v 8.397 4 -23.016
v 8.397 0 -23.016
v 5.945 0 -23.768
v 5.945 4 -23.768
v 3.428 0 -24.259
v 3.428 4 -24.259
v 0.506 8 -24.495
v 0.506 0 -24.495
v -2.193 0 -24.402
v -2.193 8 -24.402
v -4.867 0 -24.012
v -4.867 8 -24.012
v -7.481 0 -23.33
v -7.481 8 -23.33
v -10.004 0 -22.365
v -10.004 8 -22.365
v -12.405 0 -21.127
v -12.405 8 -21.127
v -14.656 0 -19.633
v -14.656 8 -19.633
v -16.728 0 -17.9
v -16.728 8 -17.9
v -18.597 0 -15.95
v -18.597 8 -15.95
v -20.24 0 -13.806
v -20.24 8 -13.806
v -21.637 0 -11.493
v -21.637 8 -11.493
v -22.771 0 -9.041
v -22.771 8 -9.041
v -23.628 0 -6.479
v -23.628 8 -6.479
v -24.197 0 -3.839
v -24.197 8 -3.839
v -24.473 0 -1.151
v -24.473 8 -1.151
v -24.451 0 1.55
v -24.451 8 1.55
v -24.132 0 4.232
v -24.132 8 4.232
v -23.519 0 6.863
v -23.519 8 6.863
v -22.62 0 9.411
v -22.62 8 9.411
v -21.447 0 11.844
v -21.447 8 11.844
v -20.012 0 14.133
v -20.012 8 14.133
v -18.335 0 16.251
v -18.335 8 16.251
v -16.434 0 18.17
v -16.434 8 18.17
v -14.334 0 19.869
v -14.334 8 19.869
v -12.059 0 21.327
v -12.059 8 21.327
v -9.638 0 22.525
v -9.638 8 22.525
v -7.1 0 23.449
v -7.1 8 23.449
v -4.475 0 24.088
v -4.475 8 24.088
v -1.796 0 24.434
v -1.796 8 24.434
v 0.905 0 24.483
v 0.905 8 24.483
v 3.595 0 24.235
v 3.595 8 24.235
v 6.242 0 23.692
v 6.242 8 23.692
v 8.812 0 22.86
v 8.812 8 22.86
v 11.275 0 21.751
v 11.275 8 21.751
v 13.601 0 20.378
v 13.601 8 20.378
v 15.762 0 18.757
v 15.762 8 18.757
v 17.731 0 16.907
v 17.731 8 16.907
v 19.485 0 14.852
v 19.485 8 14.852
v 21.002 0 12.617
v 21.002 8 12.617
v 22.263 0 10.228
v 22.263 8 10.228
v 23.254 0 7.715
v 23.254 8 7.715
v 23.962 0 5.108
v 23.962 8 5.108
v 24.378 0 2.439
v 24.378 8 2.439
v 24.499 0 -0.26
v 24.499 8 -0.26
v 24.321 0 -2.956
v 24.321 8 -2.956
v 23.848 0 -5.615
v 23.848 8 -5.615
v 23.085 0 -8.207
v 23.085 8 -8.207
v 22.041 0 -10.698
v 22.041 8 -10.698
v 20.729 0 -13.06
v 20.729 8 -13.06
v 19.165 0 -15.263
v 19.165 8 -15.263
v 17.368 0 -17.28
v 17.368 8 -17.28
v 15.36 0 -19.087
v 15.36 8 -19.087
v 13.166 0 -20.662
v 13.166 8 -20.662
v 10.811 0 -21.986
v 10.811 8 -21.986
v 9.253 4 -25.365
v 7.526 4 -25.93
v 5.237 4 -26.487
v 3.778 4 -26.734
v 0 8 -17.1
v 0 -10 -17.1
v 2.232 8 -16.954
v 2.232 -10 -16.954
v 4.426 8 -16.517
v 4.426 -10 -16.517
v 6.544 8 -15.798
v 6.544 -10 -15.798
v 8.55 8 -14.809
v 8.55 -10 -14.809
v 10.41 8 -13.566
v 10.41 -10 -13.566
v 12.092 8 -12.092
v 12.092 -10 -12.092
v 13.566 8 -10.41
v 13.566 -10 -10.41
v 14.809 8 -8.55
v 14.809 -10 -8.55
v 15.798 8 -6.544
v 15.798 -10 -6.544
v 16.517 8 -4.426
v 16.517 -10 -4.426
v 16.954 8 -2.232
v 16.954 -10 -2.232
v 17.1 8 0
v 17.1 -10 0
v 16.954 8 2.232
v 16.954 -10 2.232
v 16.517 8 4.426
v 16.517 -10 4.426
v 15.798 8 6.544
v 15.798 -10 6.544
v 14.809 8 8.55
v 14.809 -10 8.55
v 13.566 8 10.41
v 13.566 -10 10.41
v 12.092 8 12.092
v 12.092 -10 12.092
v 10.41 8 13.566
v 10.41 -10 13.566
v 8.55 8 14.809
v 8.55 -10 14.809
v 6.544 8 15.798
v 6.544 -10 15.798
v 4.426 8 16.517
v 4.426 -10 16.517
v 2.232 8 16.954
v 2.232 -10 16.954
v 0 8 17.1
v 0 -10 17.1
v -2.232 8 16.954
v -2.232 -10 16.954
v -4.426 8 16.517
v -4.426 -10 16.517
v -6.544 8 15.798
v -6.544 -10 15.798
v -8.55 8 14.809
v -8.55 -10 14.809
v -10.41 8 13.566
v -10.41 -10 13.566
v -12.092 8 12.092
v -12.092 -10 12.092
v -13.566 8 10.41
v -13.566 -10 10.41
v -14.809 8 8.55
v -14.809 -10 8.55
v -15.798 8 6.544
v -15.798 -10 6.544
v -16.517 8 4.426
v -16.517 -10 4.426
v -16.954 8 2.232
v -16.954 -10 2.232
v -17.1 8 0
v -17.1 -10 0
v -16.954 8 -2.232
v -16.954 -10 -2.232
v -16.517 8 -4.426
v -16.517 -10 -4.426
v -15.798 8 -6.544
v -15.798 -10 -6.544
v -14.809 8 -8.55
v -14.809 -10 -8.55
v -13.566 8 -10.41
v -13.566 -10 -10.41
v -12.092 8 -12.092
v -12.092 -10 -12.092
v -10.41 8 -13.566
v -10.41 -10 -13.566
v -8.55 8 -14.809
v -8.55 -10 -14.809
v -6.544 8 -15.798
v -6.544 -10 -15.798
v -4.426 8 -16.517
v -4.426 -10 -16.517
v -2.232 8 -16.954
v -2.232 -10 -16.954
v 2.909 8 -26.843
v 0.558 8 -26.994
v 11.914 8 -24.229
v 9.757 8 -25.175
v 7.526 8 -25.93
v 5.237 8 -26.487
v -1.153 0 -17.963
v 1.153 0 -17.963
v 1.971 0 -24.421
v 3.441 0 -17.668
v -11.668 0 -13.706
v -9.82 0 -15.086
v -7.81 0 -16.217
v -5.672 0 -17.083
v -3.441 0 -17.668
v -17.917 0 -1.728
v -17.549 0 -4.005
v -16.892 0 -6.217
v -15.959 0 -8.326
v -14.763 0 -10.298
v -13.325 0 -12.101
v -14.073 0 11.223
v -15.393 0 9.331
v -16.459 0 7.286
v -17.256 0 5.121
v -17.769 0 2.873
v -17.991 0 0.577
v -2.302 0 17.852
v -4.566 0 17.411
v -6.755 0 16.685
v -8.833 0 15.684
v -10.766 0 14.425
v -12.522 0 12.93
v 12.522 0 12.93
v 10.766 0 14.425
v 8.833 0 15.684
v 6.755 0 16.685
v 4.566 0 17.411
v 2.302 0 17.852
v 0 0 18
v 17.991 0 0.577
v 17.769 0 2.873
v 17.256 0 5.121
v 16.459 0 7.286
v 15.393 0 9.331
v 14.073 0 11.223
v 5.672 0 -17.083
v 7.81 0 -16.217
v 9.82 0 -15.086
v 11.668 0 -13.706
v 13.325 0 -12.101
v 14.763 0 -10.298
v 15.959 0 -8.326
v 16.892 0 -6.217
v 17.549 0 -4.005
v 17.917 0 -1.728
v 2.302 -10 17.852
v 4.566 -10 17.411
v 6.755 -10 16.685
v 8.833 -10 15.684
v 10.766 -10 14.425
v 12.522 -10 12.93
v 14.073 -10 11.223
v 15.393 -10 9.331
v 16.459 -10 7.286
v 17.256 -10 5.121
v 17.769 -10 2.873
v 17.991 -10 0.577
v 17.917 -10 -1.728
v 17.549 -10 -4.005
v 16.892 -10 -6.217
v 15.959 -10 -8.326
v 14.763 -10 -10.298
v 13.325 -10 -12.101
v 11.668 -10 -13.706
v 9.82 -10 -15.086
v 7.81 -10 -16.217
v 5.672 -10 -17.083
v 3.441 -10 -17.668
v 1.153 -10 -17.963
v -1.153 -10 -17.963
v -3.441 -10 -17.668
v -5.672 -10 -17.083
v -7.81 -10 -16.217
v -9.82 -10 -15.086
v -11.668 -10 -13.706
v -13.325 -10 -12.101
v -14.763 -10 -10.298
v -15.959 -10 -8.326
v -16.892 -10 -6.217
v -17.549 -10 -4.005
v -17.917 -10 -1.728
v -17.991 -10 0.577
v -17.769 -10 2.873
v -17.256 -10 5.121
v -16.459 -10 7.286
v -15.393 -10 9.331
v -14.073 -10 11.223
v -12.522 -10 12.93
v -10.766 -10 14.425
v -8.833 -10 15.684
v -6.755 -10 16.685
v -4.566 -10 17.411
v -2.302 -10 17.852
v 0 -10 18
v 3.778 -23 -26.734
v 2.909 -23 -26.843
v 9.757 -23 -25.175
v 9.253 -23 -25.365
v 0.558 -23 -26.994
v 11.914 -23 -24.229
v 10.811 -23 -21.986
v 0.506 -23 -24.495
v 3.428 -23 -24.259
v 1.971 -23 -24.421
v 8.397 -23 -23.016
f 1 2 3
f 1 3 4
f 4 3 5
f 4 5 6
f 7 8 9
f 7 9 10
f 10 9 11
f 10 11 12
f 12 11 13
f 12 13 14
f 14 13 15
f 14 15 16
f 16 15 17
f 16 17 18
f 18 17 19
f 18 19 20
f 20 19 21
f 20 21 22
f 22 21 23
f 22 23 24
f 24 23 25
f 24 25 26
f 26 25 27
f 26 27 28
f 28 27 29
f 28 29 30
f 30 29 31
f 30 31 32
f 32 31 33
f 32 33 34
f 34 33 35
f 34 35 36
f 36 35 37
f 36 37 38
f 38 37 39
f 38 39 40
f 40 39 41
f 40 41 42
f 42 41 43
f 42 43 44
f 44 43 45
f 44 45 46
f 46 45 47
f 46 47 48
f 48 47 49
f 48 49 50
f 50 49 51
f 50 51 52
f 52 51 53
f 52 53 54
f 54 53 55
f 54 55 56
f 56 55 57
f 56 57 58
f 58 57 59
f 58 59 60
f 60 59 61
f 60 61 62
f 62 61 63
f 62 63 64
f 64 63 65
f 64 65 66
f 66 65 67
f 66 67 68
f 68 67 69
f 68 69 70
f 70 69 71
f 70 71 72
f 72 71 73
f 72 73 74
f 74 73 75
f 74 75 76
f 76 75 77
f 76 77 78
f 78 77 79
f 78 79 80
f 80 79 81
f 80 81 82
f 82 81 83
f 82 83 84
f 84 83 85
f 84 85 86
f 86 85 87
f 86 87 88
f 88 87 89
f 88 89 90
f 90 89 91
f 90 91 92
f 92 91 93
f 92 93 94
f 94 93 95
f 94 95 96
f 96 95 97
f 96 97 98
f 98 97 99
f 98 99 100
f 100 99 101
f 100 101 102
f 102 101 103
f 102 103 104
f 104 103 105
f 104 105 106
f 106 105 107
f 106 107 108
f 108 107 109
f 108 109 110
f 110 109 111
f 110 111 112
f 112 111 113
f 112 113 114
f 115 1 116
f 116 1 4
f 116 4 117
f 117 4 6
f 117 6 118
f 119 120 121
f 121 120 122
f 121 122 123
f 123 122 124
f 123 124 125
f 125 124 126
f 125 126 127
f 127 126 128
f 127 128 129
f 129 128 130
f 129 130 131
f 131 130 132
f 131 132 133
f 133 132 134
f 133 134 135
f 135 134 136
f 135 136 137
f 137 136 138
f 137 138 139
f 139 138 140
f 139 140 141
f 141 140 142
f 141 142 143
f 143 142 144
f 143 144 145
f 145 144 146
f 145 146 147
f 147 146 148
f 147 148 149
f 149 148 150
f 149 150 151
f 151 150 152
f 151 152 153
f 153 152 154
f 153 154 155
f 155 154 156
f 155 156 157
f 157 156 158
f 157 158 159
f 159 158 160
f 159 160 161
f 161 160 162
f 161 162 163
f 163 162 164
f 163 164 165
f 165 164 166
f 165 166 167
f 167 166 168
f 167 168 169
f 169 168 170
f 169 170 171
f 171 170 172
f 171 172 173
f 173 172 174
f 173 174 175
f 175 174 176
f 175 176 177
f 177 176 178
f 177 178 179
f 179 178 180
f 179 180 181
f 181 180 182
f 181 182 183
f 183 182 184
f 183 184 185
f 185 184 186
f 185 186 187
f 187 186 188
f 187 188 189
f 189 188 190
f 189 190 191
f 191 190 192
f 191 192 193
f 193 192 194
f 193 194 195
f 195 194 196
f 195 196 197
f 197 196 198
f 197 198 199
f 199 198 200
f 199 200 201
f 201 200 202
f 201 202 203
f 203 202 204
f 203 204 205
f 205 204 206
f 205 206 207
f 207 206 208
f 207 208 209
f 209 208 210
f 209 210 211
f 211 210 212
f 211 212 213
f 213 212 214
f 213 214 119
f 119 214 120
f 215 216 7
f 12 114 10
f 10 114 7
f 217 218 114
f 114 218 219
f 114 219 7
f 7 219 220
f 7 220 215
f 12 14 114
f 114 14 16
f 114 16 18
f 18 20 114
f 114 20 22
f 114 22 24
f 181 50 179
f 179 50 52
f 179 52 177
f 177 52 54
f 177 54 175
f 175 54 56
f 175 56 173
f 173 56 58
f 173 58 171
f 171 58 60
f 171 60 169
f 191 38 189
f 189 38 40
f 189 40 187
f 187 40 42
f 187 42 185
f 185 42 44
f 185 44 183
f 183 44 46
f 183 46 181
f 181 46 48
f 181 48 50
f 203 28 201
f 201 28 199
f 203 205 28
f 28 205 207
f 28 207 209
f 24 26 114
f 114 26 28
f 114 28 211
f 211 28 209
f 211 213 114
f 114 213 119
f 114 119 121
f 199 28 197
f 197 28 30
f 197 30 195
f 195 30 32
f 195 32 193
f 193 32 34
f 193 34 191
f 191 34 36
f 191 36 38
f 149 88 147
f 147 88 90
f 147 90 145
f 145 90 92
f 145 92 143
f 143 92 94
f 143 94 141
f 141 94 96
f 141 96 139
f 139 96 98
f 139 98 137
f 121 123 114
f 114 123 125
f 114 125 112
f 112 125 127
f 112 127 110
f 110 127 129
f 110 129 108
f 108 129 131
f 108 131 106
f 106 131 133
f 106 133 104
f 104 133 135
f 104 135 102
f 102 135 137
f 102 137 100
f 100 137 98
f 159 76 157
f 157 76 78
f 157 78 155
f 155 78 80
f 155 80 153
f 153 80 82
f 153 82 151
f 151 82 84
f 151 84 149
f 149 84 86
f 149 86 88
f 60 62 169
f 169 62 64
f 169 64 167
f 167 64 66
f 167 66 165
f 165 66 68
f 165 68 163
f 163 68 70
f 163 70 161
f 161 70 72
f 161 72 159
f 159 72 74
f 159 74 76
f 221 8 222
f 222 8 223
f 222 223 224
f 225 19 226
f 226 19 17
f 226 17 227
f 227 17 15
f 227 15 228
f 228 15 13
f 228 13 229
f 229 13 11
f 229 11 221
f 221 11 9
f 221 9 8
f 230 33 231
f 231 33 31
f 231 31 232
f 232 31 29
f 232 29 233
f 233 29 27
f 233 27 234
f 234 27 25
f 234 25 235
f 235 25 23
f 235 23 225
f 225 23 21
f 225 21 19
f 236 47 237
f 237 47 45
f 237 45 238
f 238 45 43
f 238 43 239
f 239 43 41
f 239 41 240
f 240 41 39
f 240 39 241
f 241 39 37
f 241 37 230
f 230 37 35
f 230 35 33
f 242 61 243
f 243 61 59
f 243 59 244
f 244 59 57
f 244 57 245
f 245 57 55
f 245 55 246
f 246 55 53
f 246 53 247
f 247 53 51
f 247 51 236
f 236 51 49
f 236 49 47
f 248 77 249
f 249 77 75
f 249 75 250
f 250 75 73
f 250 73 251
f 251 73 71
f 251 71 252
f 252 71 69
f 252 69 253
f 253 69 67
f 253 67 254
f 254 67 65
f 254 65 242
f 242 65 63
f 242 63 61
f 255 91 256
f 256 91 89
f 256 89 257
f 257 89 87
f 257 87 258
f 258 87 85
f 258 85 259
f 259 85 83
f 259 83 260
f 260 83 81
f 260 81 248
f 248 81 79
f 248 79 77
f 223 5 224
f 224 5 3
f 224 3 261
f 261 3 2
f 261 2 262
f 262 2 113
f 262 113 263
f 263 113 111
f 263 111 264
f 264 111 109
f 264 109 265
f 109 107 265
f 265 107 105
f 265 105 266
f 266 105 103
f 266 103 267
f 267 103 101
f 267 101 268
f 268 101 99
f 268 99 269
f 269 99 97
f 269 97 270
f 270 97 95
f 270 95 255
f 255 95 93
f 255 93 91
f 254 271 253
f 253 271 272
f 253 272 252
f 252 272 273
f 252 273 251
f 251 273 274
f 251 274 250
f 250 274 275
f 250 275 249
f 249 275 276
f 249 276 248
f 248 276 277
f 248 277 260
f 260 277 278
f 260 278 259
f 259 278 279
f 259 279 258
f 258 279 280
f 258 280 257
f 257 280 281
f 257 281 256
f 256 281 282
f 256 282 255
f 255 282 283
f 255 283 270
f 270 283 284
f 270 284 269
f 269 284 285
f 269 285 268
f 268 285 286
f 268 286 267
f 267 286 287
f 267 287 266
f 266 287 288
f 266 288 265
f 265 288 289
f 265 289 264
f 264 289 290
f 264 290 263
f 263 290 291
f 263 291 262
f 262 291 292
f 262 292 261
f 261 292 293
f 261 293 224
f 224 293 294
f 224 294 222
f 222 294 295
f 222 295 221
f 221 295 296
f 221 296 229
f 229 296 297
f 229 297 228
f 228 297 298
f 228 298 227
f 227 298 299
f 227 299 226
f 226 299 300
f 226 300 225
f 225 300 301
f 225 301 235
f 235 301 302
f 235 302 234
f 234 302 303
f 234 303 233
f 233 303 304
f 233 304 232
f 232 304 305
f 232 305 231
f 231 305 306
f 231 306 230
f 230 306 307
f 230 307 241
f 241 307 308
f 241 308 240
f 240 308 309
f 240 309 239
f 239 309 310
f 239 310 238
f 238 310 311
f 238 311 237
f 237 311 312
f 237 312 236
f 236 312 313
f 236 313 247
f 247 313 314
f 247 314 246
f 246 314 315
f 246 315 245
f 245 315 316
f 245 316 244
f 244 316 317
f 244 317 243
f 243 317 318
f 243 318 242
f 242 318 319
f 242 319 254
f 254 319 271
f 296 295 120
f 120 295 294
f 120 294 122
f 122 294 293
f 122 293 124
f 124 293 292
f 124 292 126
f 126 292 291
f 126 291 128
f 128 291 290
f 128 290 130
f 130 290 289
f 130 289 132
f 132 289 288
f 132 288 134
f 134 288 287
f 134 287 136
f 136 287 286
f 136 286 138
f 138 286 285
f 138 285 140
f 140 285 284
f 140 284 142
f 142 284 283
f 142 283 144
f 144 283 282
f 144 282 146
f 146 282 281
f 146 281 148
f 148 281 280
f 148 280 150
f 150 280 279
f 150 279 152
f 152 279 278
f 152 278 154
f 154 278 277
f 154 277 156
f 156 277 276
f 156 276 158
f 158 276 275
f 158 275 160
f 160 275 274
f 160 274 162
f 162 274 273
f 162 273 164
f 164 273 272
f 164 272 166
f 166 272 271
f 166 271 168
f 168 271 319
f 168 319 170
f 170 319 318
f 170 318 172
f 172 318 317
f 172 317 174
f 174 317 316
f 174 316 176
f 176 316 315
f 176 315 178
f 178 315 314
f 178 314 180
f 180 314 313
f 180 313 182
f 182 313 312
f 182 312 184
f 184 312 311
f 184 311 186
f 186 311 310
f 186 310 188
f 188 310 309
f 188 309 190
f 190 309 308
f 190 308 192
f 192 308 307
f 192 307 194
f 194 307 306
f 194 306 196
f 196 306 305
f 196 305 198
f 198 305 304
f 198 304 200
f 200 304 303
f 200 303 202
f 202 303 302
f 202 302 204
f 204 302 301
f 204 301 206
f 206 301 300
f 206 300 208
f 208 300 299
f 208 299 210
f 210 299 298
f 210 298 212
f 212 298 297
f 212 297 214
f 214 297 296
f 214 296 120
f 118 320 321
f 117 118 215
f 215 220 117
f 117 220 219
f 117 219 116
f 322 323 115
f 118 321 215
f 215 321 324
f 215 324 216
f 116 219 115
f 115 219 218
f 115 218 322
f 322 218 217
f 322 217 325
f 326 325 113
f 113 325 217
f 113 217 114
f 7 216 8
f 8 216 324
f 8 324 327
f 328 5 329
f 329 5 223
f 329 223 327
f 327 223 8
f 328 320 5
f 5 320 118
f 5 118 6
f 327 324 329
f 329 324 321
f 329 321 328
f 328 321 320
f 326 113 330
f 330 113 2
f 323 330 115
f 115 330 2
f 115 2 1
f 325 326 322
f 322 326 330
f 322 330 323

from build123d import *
from build123d.topology import SkipClean

# Parameters (mm, degrees)
SKETCH1_R           = 24.5
SKETCH1_R_2         = 17.1
BOSS_EXTRUDE1_DEPTH = 8
BOSS_EXTRUDE2_START = -10
SKETCH1_3_R         = 18
SKETCH1_3_R_2       = 17.1
BOSS_EXTRUDE2_DEPTH = 10
BOSS_EXTRUDE3_START = -4
BOSS_EXTRUDE3_DEPTH = 4
BOSS_EXTRUDE4_START = 27
BOSS_EXTRUDE4_DEPTH = 27


with BuildPart() as part:
    # Sketch1 → Boss-Extrude1 (new body)
    with BuildSketch(Plane(origin=(0, 0, 0), x_dir=(1, 0, 0), z_dir=(0, 1, 0))):
        Circle(SKETCH1_R)
        Circle(SKETCH1_R_2, mode=Mode.SUBTRACT)
    extrude(amount=BOSS_EXTRUDE1_DEPTH)

    # Sketch1<3> → Boss-Extrude2 (add)
    with BuildSketch(Plane(origin=(0, 0, 0), x_dir=(1, 0, 0), z_dir=(0, 1, 0)).offset(BOSS_EXTRUDE2_START)):
        Circle(SKETCH1_3_R)
        Circle(SKETCH1_3_R_2, mode=Mode.SUBTRACT)
    extrude(amount=BOSS_EXTRUDE2_DEPTH)

    # Sketch2 → Boss-Extrude3 (add)
    with BuildSketch(Plane(origin=(0, 8, 0), x_dir=(1, 0, 0), z_dir=(0, 1, 0)).offset(BOSS_EXTRUDE3_START)):
        with BuildLine():
            Line((0.558039299, 26.994232572), (0.506368994, 24.494766593))
            ThreePointArc((0.506368994, 24.494766593), (5.796003851, 23.804544511), (10.810861841, 21.985796921))
            Line((10.810861841, 21.985796921), (11.914011009, 24.229245586))
            ThreePointArc((11.914011009, 24.229245586), (6.387432816, 26.233579665), (0.558039299, 26.994232572))
        make_face()
    extrude(amount=BOSS_EXTRUDE3_DEPTH)

    # Sketch3 → Boss-Extrude4 (add)
    with SkipClean():  # the faces are left unmerged after this step: merging them gives an invalid solid
        with BuildSketch(Plane.XZ.offset(-4).offset(BOSS_EXTRUDE4_START)):
            with BuildLine():
                Line((0.506368994, -24.494766593), (0.558039299, -26.994232572))
                ThreePointArc((0.558039299, -26.994232572), (2.171691116, -26.912520463), (3.777566106, -26.734434617))
                Line((3.777566106, -26.734434617), (3.427791467, -24.259024005))
                ThreePointArc((3.427791467, -24.259024005), (1.970608605, -24.420620421), (0.506368994, -24.494766593))
            make_face()
            with BuildLine():
                Line((8.396620698, -23.016228207), (9.253418728, -25.364822922))
                ThreePointArc((9.253418728, -25.364822922), (10.598934115, -24.832692073), (11.914011009, -24.229245586))
                Line((11.914011009, -24.229245586), (10.810861841, -21.985796921))
                ThreePointArc((10.810861841, -21.985796921), (9.617551327, -22.533368733), (8.396620698, -23.016228207))
            make_face()
        extrude(amount=-BOSS_EXTRUDE4_DEPTH)


solid = part.part
